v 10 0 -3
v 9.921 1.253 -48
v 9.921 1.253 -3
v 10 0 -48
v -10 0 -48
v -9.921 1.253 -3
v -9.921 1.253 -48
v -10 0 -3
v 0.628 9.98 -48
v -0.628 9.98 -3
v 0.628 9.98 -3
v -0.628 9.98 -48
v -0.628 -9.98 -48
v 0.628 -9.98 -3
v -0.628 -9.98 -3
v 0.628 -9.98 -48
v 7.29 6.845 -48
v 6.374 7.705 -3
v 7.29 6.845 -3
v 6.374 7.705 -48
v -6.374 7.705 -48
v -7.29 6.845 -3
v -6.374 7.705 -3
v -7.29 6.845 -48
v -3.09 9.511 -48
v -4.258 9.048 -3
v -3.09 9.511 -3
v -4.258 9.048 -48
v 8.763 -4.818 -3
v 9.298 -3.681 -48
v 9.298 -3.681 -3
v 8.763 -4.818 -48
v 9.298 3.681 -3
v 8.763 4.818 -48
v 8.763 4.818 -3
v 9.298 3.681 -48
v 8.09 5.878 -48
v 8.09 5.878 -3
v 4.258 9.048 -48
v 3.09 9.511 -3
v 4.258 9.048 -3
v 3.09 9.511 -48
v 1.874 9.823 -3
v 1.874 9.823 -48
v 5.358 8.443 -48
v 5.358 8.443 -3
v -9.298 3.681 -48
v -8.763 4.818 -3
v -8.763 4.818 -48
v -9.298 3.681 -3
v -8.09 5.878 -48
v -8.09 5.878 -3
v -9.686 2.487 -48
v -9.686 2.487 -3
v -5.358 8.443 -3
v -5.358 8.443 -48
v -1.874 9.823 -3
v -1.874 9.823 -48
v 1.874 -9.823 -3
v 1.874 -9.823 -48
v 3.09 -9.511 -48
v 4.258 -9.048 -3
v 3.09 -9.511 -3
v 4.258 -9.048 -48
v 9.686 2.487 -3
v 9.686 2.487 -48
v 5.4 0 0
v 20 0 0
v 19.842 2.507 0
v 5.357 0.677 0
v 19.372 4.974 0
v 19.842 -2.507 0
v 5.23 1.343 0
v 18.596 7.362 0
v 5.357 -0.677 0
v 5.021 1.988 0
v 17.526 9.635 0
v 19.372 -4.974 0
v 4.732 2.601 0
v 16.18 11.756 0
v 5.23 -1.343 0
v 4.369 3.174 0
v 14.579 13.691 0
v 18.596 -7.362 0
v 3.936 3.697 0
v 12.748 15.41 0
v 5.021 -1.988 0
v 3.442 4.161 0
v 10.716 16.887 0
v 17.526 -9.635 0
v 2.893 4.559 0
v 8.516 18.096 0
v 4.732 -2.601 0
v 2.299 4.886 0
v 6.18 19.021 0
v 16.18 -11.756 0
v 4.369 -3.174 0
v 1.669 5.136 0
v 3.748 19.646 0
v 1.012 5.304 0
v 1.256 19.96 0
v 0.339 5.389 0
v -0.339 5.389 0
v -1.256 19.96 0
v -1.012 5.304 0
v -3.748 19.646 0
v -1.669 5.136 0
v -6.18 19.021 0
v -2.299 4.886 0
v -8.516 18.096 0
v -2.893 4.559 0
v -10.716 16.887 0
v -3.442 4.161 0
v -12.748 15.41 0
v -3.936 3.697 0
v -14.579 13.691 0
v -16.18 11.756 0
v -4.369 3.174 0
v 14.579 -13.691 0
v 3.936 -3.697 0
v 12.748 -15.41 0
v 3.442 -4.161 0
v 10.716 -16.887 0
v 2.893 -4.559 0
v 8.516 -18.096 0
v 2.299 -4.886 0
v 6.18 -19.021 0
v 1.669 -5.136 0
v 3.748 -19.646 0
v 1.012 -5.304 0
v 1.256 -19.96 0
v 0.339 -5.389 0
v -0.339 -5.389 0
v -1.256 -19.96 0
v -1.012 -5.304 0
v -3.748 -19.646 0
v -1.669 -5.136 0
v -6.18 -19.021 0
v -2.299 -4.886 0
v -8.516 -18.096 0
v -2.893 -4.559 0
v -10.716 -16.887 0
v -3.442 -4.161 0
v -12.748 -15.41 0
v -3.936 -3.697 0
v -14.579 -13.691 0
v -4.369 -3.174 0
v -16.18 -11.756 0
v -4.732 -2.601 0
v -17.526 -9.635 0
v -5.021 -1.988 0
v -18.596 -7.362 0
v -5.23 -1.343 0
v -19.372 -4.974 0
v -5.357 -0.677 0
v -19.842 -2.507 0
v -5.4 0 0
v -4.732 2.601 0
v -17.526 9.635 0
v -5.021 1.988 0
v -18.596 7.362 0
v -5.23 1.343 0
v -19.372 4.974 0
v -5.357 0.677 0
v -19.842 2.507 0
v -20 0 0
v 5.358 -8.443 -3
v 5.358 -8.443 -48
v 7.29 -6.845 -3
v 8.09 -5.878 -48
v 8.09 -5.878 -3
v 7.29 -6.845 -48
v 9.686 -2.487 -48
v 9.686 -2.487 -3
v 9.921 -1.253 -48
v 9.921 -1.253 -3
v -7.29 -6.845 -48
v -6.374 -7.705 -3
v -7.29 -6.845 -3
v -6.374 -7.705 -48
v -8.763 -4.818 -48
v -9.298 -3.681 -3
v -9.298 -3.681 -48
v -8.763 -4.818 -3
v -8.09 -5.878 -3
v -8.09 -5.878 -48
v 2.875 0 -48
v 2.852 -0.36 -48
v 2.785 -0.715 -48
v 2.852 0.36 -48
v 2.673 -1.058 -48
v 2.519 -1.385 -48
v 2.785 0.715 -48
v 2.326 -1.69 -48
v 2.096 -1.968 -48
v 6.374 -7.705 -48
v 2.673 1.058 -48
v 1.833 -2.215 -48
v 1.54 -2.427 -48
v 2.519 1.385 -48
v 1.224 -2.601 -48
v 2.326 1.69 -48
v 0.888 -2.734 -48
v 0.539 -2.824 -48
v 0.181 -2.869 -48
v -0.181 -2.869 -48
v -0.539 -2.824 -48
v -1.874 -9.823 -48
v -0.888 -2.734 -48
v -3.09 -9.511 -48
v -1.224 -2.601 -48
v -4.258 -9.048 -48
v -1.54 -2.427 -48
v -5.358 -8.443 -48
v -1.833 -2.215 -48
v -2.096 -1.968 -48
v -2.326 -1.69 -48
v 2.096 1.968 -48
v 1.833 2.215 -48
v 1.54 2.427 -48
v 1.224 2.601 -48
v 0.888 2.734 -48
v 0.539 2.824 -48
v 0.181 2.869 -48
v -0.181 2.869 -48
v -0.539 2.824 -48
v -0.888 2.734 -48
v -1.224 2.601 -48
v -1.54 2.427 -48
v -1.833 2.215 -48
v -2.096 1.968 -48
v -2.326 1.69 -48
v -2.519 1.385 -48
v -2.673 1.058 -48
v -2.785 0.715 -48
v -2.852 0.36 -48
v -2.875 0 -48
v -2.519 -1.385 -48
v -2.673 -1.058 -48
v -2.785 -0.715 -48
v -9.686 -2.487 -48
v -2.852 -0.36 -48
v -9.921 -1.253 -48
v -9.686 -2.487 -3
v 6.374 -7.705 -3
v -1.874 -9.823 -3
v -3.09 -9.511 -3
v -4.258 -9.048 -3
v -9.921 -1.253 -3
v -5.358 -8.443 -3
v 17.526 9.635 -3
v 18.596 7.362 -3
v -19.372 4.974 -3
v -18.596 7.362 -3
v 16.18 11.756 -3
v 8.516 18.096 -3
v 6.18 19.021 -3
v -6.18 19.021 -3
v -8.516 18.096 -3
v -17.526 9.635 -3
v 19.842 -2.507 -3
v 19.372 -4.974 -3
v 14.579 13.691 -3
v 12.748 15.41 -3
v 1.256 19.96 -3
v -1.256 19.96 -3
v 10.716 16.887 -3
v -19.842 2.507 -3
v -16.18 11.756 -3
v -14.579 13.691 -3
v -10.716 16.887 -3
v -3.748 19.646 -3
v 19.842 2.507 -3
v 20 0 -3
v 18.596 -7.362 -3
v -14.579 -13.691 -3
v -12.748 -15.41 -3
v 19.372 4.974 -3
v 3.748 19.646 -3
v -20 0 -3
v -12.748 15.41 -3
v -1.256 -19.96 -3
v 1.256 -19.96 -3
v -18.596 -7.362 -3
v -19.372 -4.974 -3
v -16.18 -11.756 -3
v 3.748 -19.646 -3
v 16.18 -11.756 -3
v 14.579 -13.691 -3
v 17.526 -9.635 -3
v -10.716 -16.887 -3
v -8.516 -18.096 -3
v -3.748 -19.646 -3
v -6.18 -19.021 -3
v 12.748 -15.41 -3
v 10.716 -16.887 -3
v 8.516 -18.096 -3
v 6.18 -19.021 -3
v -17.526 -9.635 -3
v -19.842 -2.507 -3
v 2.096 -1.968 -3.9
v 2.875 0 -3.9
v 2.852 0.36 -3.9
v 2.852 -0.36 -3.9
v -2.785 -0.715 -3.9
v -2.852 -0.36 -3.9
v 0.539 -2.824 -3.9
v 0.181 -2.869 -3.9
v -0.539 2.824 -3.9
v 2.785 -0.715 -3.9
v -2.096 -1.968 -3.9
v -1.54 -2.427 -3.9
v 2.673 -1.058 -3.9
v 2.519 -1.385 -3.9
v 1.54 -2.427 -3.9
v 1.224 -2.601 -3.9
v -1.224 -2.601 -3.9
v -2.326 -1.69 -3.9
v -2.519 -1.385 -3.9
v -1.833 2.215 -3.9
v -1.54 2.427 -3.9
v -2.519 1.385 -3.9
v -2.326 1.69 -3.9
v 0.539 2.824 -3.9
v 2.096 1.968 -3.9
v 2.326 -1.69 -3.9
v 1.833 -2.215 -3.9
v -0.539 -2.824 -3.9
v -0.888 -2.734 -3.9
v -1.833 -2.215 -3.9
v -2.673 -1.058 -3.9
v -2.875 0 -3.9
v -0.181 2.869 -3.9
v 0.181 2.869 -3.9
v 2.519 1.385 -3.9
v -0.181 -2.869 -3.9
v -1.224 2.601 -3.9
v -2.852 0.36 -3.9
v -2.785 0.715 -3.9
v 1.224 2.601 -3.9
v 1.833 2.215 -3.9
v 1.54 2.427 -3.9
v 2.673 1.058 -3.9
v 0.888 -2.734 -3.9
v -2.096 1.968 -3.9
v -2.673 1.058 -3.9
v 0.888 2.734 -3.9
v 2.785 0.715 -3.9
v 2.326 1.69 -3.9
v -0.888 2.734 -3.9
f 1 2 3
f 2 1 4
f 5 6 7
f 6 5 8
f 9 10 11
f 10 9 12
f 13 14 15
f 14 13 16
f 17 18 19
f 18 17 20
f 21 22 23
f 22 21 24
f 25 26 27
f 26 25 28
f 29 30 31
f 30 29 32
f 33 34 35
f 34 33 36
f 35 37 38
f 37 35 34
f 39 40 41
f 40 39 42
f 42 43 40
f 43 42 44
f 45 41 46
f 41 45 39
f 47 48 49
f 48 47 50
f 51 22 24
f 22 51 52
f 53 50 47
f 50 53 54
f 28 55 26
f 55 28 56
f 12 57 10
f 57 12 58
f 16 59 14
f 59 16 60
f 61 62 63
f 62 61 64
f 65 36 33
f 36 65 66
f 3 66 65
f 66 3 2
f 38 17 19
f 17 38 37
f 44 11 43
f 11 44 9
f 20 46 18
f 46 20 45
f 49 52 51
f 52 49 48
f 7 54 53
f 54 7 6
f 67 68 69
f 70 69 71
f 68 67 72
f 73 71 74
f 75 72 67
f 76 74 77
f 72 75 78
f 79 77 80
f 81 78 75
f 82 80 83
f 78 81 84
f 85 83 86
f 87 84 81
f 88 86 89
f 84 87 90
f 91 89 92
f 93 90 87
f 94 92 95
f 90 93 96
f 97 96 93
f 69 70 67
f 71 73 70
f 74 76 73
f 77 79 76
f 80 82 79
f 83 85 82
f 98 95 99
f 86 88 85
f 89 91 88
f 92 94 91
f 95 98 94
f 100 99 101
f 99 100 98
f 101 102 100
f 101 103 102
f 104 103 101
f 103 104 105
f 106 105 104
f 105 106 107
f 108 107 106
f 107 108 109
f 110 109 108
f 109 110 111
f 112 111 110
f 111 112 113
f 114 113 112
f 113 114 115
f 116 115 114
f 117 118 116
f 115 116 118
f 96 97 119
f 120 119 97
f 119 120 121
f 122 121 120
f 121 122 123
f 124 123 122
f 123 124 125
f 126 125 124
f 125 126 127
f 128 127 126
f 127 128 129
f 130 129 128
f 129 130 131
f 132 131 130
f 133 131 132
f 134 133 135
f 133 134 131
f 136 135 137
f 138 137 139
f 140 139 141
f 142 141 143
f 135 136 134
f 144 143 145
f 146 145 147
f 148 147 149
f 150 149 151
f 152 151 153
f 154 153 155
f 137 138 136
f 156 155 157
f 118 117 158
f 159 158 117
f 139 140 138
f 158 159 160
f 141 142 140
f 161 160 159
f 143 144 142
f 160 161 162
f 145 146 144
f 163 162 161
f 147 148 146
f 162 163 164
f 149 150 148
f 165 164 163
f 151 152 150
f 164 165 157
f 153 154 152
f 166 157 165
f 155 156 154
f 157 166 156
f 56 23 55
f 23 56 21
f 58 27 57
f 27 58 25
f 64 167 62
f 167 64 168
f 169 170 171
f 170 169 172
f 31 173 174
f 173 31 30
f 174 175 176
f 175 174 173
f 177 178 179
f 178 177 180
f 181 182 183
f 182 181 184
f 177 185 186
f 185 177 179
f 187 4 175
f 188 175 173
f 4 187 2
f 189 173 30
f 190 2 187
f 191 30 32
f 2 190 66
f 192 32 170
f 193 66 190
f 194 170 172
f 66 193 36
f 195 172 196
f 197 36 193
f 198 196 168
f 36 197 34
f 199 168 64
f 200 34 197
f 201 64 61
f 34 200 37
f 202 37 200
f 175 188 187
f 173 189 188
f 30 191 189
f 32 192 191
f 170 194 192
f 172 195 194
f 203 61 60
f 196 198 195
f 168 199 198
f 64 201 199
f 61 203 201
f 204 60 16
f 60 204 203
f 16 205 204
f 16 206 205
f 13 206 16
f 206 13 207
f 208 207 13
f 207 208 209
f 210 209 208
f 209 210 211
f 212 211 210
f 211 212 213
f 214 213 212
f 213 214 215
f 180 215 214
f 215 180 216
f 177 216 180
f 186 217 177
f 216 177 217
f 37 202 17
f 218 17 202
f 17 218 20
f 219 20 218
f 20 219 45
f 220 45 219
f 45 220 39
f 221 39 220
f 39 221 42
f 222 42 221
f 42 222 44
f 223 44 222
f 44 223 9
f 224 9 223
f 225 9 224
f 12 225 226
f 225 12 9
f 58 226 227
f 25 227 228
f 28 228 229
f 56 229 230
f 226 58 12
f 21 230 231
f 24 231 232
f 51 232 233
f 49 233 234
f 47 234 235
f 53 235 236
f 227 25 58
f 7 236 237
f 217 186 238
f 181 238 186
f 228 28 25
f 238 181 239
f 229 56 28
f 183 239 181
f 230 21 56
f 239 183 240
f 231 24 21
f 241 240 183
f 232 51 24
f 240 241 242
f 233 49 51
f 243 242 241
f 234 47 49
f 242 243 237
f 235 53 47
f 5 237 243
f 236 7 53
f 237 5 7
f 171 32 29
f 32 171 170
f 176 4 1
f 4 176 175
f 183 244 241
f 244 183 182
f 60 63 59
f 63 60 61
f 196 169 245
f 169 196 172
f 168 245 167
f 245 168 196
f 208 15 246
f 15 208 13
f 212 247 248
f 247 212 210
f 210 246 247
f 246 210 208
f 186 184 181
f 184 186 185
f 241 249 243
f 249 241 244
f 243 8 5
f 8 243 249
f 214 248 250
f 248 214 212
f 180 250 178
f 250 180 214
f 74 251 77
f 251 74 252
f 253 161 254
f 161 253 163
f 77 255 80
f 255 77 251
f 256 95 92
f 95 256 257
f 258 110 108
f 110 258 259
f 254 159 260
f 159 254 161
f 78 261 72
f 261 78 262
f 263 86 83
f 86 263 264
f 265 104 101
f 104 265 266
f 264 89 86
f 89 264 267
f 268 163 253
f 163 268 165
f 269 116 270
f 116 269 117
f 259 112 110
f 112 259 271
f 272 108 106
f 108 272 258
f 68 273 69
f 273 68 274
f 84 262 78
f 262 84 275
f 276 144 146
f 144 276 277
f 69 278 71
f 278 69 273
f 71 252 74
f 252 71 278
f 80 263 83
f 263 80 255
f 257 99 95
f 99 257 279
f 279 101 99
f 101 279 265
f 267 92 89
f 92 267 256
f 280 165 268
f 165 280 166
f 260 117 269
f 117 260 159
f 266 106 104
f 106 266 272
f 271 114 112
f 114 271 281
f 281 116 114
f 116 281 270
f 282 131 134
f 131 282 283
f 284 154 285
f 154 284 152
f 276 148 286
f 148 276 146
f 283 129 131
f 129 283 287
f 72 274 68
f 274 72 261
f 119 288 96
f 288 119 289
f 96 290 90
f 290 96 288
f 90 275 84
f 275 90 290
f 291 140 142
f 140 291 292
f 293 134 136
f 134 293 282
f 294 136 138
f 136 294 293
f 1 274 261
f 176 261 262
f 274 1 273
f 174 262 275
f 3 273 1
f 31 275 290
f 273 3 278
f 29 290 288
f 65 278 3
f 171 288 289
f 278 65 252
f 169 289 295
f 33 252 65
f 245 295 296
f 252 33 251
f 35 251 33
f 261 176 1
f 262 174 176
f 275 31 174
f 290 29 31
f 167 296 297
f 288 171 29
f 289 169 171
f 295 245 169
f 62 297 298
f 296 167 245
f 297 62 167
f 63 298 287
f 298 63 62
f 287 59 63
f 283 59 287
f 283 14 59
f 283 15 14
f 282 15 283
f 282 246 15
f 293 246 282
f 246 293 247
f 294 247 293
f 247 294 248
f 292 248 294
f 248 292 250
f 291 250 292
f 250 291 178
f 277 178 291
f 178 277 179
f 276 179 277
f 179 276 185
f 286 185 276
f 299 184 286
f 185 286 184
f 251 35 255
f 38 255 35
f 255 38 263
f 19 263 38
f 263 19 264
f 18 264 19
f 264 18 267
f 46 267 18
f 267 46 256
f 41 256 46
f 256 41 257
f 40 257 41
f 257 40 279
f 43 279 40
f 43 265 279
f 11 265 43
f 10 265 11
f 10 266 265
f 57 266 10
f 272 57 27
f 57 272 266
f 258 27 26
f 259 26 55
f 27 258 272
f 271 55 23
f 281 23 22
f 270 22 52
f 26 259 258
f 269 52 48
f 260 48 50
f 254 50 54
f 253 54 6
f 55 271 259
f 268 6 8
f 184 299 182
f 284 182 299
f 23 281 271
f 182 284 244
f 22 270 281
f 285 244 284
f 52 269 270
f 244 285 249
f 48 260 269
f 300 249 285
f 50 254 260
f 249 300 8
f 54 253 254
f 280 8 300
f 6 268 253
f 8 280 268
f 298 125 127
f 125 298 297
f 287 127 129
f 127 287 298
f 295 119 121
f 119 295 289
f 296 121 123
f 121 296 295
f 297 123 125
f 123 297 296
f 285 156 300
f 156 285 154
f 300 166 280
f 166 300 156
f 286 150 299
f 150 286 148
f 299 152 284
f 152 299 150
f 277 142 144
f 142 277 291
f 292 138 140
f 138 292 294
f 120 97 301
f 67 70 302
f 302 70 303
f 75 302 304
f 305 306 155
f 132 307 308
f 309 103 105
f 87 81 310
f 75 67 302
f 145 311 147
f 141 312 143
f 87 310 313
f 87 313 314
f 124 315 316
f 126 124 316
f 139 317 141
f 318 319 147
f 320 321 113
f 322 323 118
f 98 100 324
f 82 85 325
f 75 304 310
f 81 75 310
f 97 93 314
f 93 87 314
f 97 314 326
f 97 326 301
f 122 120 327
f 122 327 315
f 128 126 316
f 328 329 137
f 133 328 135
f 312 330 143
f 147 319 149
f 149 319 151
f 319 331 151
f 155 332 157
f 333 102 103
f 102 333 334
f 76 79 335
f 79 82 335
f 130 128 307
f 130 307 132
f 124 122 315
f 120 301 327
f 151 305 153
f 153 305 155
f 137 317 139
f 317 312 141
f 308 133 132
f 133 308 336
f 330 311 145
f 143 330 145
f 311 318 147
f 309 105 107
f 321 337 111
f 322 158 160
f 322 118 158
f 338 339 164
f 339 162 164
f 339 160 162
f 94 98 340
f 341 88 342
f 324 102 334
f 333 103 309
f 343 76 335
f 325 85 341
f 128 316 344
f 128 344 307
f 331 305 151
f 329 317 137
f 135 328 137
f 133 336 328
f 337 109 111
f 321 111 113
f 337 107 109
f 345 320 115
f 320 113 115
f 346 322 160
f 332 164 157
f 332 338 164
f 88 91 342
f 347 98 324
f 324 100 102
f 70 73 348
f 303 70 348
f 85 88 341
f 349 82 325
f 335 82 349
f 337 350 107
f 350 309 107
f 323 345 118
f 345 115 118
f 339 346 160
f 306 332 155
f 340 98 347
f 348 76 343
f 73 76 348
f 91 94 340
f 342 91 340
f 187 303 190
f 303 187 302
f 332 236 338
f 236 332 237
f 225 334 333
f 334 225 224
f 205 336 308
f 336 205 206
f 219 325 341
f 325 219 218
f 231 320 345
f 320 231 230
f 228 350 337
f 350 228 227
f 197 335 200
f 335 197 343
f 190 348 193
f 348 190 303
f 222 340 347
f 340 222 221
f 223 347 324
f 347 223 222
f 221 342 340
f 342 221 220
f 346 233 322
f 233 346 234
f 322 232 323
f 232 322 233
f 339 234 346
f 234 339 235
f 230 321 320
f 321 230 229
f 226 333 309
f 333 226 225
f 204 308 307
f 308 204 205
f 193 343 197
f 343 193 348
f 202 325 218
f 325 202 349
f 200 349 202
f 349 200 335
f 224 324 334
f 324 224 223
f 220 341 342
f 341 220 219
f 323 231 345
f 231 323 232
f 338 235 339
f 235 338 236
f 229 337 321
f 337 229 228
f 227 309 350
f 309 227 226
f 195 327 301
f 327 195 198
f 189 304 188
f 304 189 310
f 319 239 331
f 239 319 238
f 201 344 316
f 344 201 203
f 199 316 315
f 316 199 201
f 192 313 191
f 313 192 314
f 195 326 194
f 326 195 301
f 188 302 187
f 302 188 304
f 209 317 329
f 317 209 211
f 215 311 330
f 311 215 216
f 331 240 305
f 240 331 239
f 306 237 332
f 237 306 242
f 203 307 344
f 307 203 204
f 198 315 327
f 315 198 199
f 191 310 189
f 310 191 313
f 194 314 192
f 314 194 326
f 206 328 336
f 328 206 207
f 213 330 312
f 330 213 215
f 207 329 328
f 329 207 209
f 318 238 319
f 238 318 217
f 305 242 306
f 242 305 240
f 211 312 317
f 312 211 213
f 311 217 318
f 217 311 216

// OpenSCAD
$fn = 50;


difference() {
	union() {
		translate(v = [0, 0, -48.0000000000]) {
			cylinder(h = 48, r = 10.0000000000);
		}
		translate(v = [0, 0, -3.0000000000]) {
			cylinder(h = 3, r = 20.0000000000);
		}
	}
	union() {
		translate(v = [0, 0, 0]) {
			rotate(a = [0, 0, 0]) {
				difference() {
					union() {
						#translate(v = [0, 0, -48.0000000000]) {
							cylinder(h = 48, r = 2.6000000000);
						}
						#translate(v = [0, 0, -3.9000000000]) {
							cylinder(h = 3.9000000000, r = 10.0000000000, r1 = 2.8750000000, r2 = 5.4000000000);
						}
						#translate(v = [0, 0, -48.0000000000]) {
							cylinder(h = 48, r = 2.8750000000);
						}
						#translate(v = [0, 0, -48.0000000000]) {
							cylinder(h = 48, r = 2.6000000000);
						}
					}
					union();
				}
			}
		}
	}
}
